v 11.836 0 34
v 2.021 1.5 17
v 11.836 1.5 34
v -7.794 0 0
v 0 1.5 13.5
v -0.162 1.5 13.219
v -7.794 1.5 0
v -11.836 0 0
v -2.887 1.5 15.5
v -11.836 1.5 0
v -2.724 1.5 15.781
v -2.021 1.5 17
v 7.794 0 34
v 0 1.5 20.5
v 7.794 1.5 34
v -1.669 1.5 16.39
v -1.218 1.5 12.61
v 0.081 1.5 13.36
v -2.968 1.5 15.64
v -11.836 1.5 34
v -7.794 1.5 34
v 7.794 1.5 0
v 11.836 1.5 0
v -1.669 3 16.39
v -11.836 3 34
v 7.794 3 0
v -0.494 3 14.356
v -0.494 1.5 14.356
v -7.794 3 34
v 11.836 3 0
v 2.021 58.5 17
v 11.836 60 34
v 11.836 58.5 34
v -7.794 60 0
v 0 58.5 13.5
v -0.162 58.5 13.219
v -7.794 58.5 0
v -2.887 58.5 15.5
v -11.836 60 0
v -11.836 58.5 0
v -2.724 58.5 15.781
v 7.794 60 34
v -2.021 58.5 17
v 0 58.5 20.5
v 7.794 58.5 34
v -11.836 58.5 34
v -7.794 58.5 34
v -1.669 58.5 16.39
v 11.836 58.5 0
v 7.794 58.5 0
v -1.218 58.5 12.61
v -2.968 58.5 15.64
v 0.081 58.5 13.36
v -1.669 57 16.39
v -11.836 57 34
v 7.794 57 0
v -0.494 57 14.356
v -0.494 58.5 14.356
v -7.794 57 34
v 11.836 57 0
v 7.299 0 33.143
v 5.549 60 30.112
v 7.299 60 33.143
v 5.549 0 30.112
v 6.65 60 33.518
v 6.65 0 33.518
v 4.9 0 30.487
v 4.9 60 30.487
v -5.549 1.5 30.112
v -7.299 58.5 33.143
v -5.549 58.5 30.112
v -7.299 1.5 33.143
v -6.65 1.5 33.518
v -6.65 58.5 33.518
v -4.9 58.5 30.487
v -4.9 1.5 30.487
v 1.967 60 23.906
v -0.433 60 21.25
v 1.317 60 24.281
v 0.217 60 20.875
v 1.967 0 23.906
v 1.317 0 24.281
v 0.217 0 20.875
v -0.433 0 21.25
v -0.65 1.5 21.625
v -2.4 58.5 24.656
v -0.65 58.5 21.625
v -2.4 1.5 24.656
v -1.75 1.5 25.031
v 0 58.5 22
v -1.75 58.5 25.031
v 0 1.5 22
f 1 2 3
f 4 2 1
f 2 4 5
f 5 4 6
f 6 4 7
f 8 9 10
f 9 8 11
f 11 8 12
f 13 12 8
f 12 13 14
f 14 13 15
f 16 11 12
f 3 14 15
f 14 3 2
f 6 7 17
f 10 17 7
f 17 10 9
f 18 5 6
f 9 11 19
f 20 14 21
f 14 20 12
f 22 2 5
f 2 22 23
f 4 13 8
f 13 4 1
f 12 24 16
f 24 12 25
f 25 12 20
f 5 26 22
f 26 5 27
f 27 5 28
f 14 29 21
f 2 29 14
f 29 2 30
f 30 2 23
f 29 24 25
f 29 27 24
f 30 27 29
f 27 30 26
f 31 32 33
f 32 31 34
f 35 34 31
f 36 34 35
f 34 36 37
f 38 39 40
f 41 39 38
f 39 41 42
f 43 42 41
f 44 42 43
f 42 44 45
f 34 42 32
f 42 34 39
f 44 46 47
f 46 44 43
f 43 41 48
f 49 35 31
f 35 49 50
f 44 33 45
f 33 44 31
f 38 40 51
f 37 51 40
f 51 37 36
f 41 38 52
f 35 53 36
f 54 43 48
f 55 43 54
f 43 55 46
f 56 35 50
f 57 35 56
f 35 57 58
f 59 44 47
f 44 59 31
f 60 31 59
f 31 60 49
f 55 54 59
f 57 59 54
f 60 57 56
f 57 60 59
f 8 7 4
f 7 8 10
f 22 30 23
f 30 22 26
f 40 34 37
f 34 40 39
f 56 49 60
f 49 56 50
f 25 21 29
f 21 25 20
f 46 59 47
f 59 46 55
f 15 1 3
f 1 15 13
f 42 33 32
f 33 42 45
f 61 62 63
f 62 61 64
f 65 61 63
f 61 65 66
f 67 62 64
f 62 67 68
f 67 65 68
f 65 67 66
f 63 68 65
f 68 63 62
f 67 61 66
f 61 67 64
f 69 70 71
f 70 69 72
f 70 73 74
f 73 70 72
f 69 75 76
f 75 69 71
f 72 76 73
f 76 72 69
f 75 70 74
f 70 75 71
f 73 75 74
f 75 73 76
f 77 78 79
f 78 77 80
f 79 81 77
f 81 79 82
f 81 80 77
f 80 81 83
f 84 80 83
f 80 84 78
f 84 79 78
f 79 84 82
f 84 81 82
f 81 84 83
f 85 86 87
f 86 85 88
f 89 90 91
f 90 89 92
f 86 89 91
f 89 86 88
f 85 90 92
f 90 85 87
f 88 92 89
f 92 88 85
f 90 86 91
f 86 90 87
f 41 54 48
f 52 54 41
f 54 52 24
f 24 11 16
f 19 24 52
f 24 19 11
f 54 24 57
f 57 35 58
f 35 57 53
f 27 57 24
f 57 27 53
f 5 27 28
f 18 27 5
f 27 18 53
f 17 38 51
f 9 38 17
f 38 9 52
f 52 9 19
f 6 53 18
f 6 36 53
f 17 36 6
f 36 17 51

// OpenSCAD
// ---------------------------------------------------------------------------
// Forage fork  --  a sawbuck-style browse rack for goats
//
// Two X-frames ("crosses") made from 2x4s. Branches lie in the V-trough above
// the crossings, cradled by 1x4 rails run along the inside faces of the arms.
// A 2x4 wedged into the gap BELOW the crossings stops the X from scissoring.
//
// Units: INCHES.  Lumber is nominal-named but modelled at actual sizes.
//
// The two primary parameters are:
//   cross_angle  -- the included angle of the X where the legs cross
//   fork_height  -- finished height, ground to the top of the arms
// ---------------------------------------------------------------------------

/* [Primary] */

// Included angle between the two legs of each cross (degrees).
// Small = tall narrow V; large = wide splayed V.
cross_angle = 60;      // [20:5:80]

// Finished height, ground to top of the arms (inches).
fork_height = 34;      // [24:1:48]

/* [Secondary] */

// Overall length of the rack, outside face to outside face of the end frames.
fork_length = 60;

// Where the legs cross, as a fraction of the total height.
// Larger = crossing sits higher = shallower trough, narrower stance.
cross_frac = 0.5;      // [0.35:0.01:0.8]

// Half-lap the crossing (notch both legs flush) instead of bolting
// the boards face-to-face. Face-to-face is easier to build.
half_lap = false;

/* [Cradle rails] */

// The upper pair sits level, near the tops of the arms. The inset is measured
// from the top of the arm, down along the board, to the rail's upper edge.
upper_rail_inset = 2;

// The lower pair is staggered rather than level. Sliding a rail down its arm
// carries it toward the vertex, where the narrowing V pinches it -- and two
// rails at the same height jam against each other at the centreline before
// either gets near the crook. Dropping them one at a time gets both much
// lower: the first seats when its inner corner lands on the opposite leg,
// and the second comes to rest on the first one's exposed face.
//
// These lift each rail back up its arm from where it seats.
crook_rail_lift  = 0;
second_rail_lift = 0;

/* [Stop block] */

// A 2x4 running the length of the rack, below the crossings. Each cross is a
// single bolt -- a hinge -- so without this the frame is free to scissor.
//
// It lies with a wide face flat against the underside of the two INNER legs,
// parallel to them, and its square-cut ends butt the inside surfaces of the
// two OUTER legs. So it lands on both boards of both crosses, which is what
// triangulates the hinge.
stop_block = true;

// How far to slide the stop down the inner leg from its seated position. At 0
// its ends sit square on the outer legs. Sliding it down gives a wider, and so
// stiffer, triangle, but the legs diverge as you go down and the ends quickly
// stop landing on anything.
stop_drop = 0;         // [0:0.5:12]

/* [Display] */

show_branches = false;

// Shade the boards by stock rather than by part: every 2x4 gray, every 1x4
// white. Reads on a black-and-white printout, where the usual timber colours
// all come out the same grey.
shade_by_stock = false;

/* [Hidden] */

// Actual dressed lumber dimensions
LEG_T = 1.5;   LEG_W = 3.5;    // 2x4
RAIL_T = 0.75; RAIL_W = 3.5;   // 1x4

BIG = 1000;    // trim-solid size
EXT = 8;       // how far to overshoot before trimming ends

// Part colours. In shade_by_stock mode the stop joins the legs, because it is
// a 2x4 like them -- the point is to show the stock, not the part.
SHADE_2X4 = "gray";
SHADE_1X4 = "white";

col_leg  = shade_by_stock ? SHADE_2X4 : "burlywood";
col_rail = shade_by_stock ? SHADE_1X4 : "tan";
col_stop = shade_by_stock ? SHADE_2X4 : "peru";
col_wood = shade_by_stock ? "darkgray" : "olivedrab";

// ---------------------------------------------------------------------------
// Derived geometry
// ---------------------------------------------------------------------------

a   = cross_angle / 2;              // each leg's tilt from vertical
H   = fork_height;
h_x = cross_frac * H;               // height of the crossing point

arm_len  = (H - h_x) / cos(a);      // crossing -> top, along the board
foot_len = h_x / cos(a);            // crossing -> ground, along the board

frame_t = half_lap ? LEG_T : 2 * LEG_T;   // thickness of one X-frame

// Height at which the two inner faces meet: the actual bottom of the trough.
v_vertex = h_x + LEG_W / (2 * sin(a));

// Below the crossing the legs swap sides and the gap between them widens
// downward. Its apex, directly under the crossing, mirrors the trough vertex.
lower_apex = h_x - LEG_W / (2 * sin(a));

// The stop lies on the inner leg's underside face, so work in that leg's own
// frame: local x is measured off the leg's face, local z runs along the board
// from the crossing. Laid on its wide face, the stop is LEG_T proud of the
// leg and covers LEG_W along it.
//
// Sliding the stop along the inner leg sweeps its square end across the outer
// leg's cross-section. The two legs meet at 2a, so the end presents this much
// width measured across the outer leg:
stop_end_width = LEG_T * cos(2 * a) + LEG_W * sin(2 * a);

// Centre the end on the outer leg, so as much of it as possible bears on that
// leg. That butt joint is what "connects" the two, and it lands just under the
// crossing -- further down the legs diverge and the end meets nothing at all.
stop_seat_z = (LEG_W * sin(2 * a) - (LEG_W + LEG_T) * cos(2 * a))
              / (2 * sin(2 * a));

// How much of the end actually lands on the outer leg. The end is wider than
// a 2x4 once the cross angle opens up much past 40 deg, so this saturates.
stop_bearing = min(stop_end_width, LEG_W);

stop_z_local = stop_seat_z - stop_drop;
stop_length  = fork_length - 2 * LEG_T;

// Global height of the stop's highest and lowest corners.
stop_high_z = h_x - (LEG_W / 2) * sin(a) + stop_z_local * cos(a);
stop_low_z  = h_x - (LEG_W / 2 + LEG_T) * sin(a)
                  + (stop_z_local - LEG_W) * cos(a);

// Rail positions along the board, measured from the crossing.
upper_rail_z = arm_len - RAIL_W / 2 - upper_rail_inset;

// How far a rail's inner face stands off its own leg's centreline.
RAIL_REACH = LEG_W / 2 + RAIL_T;

// Seating the staggered lower pair. Going between the two arms' frames is a
// rotation by 2a in the (x, z) plane, which turns each contact into a one-line
// solve. The first rail's lower inner corner lands on the opposite leg's inner
// face; the second's lands on the first rail's inner face, one RAIL_T further
// into the V, which is what holds it a little higher.
crook_rail_z  = RAIL_W / 2 + crook_rail_lift
                + (LEG_W / 2 + RAIL_REACH * cos(2 * a)) / sin(2 * a);
second_rail_z = RAIL_W / 2 + second_rail_lift
                + RAIL_REACH * (1 + cos(2 * a)) / sin(2 * a);

// How far a rail on one arm reaches toward the centreline. Two rails set level
// with each other collide when this goes negative.
function rail_inner_x(z_local) = -RAIL_REACH * cos(a) + z_local * sin(a);

// Height of a rail's lowest corner.
function rail_low_z(z_local) = h_x + (LEG_W / 2) * sin(a)
                                   + (z_local - RAIL_W / 2) * cos(a);

upper_rail_gap  = 2 * rail_inner_x(upper_rail_z);
crook_gap       = upper_rail_z - crook_rail_z  - RAIL_W;   // along the +1 arm
second_gap      = upper_rail_z - second_rail_z - RAIL_W;   // along the -1 arm
crook_rail_h    = rail_low_z(crook_rail_z);
second_rail_h   = rail_low_z(second_rail_z);

leg_stock  = H / cos(a) + LEG_W * tan(a);   // long-point length of one leg
// The outer legs finish flush with the ends of the rack; the inner legs are
// set in by one board thickness. Each rail is cut to its own leg so both pairs
// finish flush rather than one running past.
rail_stock_outer = fork_length;
rail_stock_inner = half_lap ? fork_length : fork_length - 2 * LEG_T;

foot_spread = 2 * h_x * tan(a) + LEG_W / cos(a);   // outside of foot to outside
top_spread  = 2 * (H - h_x) * tan(a) + LEG_W / cos(a);

// ---------------------------------------------------------------------------
// Parts
// ---------------------------------------------------------------------------

// One leg, overshooting both ends (trimmed later by the ground/top planes).
// dir = +1 leans toward +x going up;  dir = -1 leans toward -x.
module leg_solid(dir, y0) {
    translate([0, y0, h_x])
        rotate([0, dir * a, 0])
            translate([-LEG_W / 2, 0, -(foot_len + EXT)])
                cube([LEG_W, LEG_T, foot_len + arm_len + 2 * EXT]);
}

// A leg, half-lapped at the crossing if requested.
module leg(dir, y0) {
    difference() {
        leg_solid(dir, y0);
        if (half_lap)
            intersection() {
                leg_solid(-dir, y0);
                // keep only the far half of the board's thickness
                translate([-BIG / 2,
                           dir > 0 ? y0 + LEG_T / 2 : y0 + LEG_T / 2 - BIG,
                           -BIG / 2])
                    cube(BIG);
            }
    }
}

// One end frame. `flip` puts the +1 leg on the outboard side, so that on
// both frames the same-leaning boards share a plane and the rails land flat.
module end_frame(y0, flip = false) {
    y_pos = half_lap ? y0 : (flip ? y0 + LEG_T : y0);
    y_neg = half_lap ? y0 : (flip ? y0 : y0 + LEG_T);
    leg(+1, y_pos);
    leg(-1, y_neg);
}

// A 1x4 lying flat against the inside face of one leg, running the length of
// the rack. The +1 leg's inside face is its local -x face, hence face = -dir.
module rail_on_leg(dir, z_local) {
    // dir = +1 lands on the outer legs, dir = -1 on the inner ones
    len = (dir > 0) ? rail_stock_outer : rail_stock_inner;
    translate([0, 0, h_x])
        rotate([0, dir * a, 0])
            translate([-dir * (LEG_W / 2 + RAIL_T / 2),
                       fork_length / 2,
                       z_local])
                cube([RAIL_T, len, RAIL_W], center = true);
}

module rails() {
    rail_on_leg(+1, upper_rail_z);
    rail_on_leg(-1, upper_rail_z);
    rail_on_leg(+1, crook_rail_z);      // down in the crook
    rail_on_leg(-1, second_rail_z);     // resting on top of it
}

// The 2x4 that stops the cross from scissoring. Built in the inner (-1) leg's
// own frame so it lands flat on that leg's underside face, and cut to length
// so its square ends butt the inside surfaces of the two outer legs.
module stop() {
    translate([0, 0, h_x])
        rotate([0, -a, 0])
            translate([-LEG_W / 2 - LEG_T, LEG_T, stop_z_local - LEG_W])
                cube([LEG_T, stop_length, LEG_W]);
}

// ---------------------------------------------------------------------------
// Assembly
// ---------------------------------------------------------------------------

module trimmed() {
    difference() {
        children();
        translate([0, 0, -BIG / 2]) cube([BIG, BIG, BIG], center = true);   // ground
        translate([0, 0, H + BIG / 2]) cube([BIG, BIG, BIG], center = true); // top
    }
}

module forage_fork() {
    color(col_leg)
        trimmed() {
            end_frame(0);
            end_frame(fork_length - frame_t, flip = true);
        }

    color(col_rail) rails();

    if (stop_block) color(col_stop) stop();
}

// Rough branches resting in the trough, for scale/intent only.
module branches() {
    floor_z = v_vertex;
    stack = [[ 0.0, 2.4, 4.0],
             [-3.4, 5.6, 3.0],
             [ 3.6, 6.4, 3.2],
             [ 0.4, 9.6, 2.6],
             [-2.6, 12.2, 2.0]];
    color(col_wood, 0.85)
        for (b = stack)
            translate([b[0], -6, floor_z + b[1]])
                rotate([-90, 0, 0])
                    cylinder(h = fork_length + 20, d = b[2], $fn = 12);
}

forage_fork();
if (show_branches) branches();

// ---------------------------------------------------------------------------
// Cut list and clearance checks
// ---------------------------------------------------------------------------

echo(str("== Forage fork =================================="));
echo(str("  cross angle .......... ", cross_angle, " deg"));
echo(str("  height ............... ", H, " in"));
echo(str("  length ............... ", fork_length, " in"));
echo(str("  crossing height ...... ", h_x, " in"));
echo(str("  trough bottom ........ ", v_vertex, " in"));
echo(str("  stance (foot to foot) . ", foot_spread, " in"));
echo(str("  top opening .......... ", top_spread, " in"));
echo(str("-- cut list ------------------------------------"));
echo(str("  4 x  2x4  legs   @ ", leg_stock, " in long point,",
         " both ends cut at ", a, " deg off square"));
echo(str("  2 x  1x4  rails  @ ", rail_stock_outer, " in (on the outer legs)"));
echo(str("  2 x  1x4  rails  @ ", rail_stock_inner, " in (on the inner legs)"));
if (stop_block)
    echo(str("  1 x  2x4  stop   @ ", stop_length, " in, square ends"));
echo(str("  joint at crossing: ", half_lap ? "half-lap" : "face-to-face, bolted"));
if (shade_by_stock)
    echo(str("  shading: gray = 2x4 (legs + stop), white = 1x4 (rails)"));
echo(str("-- clearances ----------------------------------"));
echo(str("  between the two upper rails ..... ", upper_rail_gap, " in"));
echo(str("  crook rail bottoms out at ....... ", crook_rail_h,
         " in (trough vertex is at ", v_vertex, ")"));
echo(str("  second rail rests at ............ ", second_rail_h, " in"));
echo(str("  clear arm above crook rail ...... ", crook_gap, " in"));
echo(str("  clear arm above second rail ..... ", second_gap, " in"));
if (stop_block) {
    echo(str("  stop spans ", stop_low_z, " to ", stop_high_z,
             " in above ground (crossing is at ", h_x, ")"));
    echo(str("  stop end bears ", stop_bearing, " in of its ",
             stop_end_width, " in width on the outer leg"));
}
if (upper_rail_gap <= 0)
    echo("  *** WARNING: the two upper rails run into each other.",
         " Reduce upper_rail_inset, or open up cross_angle.");
if (crook_gap <= 0 || second_gap <= 0)
    echo("  *** WARNING: a lower rail overlaps the upper rail on its arm.",
         " Increase upper_rail_inset, or lift the lower rail less.");
if (stop_block && stop_low_z <= 0)
    echo("  *** WARNING: the stop reaches the ground.",
         " Reduce stop_drop, or raise cross_frac.");
echo(str("================================================"));
